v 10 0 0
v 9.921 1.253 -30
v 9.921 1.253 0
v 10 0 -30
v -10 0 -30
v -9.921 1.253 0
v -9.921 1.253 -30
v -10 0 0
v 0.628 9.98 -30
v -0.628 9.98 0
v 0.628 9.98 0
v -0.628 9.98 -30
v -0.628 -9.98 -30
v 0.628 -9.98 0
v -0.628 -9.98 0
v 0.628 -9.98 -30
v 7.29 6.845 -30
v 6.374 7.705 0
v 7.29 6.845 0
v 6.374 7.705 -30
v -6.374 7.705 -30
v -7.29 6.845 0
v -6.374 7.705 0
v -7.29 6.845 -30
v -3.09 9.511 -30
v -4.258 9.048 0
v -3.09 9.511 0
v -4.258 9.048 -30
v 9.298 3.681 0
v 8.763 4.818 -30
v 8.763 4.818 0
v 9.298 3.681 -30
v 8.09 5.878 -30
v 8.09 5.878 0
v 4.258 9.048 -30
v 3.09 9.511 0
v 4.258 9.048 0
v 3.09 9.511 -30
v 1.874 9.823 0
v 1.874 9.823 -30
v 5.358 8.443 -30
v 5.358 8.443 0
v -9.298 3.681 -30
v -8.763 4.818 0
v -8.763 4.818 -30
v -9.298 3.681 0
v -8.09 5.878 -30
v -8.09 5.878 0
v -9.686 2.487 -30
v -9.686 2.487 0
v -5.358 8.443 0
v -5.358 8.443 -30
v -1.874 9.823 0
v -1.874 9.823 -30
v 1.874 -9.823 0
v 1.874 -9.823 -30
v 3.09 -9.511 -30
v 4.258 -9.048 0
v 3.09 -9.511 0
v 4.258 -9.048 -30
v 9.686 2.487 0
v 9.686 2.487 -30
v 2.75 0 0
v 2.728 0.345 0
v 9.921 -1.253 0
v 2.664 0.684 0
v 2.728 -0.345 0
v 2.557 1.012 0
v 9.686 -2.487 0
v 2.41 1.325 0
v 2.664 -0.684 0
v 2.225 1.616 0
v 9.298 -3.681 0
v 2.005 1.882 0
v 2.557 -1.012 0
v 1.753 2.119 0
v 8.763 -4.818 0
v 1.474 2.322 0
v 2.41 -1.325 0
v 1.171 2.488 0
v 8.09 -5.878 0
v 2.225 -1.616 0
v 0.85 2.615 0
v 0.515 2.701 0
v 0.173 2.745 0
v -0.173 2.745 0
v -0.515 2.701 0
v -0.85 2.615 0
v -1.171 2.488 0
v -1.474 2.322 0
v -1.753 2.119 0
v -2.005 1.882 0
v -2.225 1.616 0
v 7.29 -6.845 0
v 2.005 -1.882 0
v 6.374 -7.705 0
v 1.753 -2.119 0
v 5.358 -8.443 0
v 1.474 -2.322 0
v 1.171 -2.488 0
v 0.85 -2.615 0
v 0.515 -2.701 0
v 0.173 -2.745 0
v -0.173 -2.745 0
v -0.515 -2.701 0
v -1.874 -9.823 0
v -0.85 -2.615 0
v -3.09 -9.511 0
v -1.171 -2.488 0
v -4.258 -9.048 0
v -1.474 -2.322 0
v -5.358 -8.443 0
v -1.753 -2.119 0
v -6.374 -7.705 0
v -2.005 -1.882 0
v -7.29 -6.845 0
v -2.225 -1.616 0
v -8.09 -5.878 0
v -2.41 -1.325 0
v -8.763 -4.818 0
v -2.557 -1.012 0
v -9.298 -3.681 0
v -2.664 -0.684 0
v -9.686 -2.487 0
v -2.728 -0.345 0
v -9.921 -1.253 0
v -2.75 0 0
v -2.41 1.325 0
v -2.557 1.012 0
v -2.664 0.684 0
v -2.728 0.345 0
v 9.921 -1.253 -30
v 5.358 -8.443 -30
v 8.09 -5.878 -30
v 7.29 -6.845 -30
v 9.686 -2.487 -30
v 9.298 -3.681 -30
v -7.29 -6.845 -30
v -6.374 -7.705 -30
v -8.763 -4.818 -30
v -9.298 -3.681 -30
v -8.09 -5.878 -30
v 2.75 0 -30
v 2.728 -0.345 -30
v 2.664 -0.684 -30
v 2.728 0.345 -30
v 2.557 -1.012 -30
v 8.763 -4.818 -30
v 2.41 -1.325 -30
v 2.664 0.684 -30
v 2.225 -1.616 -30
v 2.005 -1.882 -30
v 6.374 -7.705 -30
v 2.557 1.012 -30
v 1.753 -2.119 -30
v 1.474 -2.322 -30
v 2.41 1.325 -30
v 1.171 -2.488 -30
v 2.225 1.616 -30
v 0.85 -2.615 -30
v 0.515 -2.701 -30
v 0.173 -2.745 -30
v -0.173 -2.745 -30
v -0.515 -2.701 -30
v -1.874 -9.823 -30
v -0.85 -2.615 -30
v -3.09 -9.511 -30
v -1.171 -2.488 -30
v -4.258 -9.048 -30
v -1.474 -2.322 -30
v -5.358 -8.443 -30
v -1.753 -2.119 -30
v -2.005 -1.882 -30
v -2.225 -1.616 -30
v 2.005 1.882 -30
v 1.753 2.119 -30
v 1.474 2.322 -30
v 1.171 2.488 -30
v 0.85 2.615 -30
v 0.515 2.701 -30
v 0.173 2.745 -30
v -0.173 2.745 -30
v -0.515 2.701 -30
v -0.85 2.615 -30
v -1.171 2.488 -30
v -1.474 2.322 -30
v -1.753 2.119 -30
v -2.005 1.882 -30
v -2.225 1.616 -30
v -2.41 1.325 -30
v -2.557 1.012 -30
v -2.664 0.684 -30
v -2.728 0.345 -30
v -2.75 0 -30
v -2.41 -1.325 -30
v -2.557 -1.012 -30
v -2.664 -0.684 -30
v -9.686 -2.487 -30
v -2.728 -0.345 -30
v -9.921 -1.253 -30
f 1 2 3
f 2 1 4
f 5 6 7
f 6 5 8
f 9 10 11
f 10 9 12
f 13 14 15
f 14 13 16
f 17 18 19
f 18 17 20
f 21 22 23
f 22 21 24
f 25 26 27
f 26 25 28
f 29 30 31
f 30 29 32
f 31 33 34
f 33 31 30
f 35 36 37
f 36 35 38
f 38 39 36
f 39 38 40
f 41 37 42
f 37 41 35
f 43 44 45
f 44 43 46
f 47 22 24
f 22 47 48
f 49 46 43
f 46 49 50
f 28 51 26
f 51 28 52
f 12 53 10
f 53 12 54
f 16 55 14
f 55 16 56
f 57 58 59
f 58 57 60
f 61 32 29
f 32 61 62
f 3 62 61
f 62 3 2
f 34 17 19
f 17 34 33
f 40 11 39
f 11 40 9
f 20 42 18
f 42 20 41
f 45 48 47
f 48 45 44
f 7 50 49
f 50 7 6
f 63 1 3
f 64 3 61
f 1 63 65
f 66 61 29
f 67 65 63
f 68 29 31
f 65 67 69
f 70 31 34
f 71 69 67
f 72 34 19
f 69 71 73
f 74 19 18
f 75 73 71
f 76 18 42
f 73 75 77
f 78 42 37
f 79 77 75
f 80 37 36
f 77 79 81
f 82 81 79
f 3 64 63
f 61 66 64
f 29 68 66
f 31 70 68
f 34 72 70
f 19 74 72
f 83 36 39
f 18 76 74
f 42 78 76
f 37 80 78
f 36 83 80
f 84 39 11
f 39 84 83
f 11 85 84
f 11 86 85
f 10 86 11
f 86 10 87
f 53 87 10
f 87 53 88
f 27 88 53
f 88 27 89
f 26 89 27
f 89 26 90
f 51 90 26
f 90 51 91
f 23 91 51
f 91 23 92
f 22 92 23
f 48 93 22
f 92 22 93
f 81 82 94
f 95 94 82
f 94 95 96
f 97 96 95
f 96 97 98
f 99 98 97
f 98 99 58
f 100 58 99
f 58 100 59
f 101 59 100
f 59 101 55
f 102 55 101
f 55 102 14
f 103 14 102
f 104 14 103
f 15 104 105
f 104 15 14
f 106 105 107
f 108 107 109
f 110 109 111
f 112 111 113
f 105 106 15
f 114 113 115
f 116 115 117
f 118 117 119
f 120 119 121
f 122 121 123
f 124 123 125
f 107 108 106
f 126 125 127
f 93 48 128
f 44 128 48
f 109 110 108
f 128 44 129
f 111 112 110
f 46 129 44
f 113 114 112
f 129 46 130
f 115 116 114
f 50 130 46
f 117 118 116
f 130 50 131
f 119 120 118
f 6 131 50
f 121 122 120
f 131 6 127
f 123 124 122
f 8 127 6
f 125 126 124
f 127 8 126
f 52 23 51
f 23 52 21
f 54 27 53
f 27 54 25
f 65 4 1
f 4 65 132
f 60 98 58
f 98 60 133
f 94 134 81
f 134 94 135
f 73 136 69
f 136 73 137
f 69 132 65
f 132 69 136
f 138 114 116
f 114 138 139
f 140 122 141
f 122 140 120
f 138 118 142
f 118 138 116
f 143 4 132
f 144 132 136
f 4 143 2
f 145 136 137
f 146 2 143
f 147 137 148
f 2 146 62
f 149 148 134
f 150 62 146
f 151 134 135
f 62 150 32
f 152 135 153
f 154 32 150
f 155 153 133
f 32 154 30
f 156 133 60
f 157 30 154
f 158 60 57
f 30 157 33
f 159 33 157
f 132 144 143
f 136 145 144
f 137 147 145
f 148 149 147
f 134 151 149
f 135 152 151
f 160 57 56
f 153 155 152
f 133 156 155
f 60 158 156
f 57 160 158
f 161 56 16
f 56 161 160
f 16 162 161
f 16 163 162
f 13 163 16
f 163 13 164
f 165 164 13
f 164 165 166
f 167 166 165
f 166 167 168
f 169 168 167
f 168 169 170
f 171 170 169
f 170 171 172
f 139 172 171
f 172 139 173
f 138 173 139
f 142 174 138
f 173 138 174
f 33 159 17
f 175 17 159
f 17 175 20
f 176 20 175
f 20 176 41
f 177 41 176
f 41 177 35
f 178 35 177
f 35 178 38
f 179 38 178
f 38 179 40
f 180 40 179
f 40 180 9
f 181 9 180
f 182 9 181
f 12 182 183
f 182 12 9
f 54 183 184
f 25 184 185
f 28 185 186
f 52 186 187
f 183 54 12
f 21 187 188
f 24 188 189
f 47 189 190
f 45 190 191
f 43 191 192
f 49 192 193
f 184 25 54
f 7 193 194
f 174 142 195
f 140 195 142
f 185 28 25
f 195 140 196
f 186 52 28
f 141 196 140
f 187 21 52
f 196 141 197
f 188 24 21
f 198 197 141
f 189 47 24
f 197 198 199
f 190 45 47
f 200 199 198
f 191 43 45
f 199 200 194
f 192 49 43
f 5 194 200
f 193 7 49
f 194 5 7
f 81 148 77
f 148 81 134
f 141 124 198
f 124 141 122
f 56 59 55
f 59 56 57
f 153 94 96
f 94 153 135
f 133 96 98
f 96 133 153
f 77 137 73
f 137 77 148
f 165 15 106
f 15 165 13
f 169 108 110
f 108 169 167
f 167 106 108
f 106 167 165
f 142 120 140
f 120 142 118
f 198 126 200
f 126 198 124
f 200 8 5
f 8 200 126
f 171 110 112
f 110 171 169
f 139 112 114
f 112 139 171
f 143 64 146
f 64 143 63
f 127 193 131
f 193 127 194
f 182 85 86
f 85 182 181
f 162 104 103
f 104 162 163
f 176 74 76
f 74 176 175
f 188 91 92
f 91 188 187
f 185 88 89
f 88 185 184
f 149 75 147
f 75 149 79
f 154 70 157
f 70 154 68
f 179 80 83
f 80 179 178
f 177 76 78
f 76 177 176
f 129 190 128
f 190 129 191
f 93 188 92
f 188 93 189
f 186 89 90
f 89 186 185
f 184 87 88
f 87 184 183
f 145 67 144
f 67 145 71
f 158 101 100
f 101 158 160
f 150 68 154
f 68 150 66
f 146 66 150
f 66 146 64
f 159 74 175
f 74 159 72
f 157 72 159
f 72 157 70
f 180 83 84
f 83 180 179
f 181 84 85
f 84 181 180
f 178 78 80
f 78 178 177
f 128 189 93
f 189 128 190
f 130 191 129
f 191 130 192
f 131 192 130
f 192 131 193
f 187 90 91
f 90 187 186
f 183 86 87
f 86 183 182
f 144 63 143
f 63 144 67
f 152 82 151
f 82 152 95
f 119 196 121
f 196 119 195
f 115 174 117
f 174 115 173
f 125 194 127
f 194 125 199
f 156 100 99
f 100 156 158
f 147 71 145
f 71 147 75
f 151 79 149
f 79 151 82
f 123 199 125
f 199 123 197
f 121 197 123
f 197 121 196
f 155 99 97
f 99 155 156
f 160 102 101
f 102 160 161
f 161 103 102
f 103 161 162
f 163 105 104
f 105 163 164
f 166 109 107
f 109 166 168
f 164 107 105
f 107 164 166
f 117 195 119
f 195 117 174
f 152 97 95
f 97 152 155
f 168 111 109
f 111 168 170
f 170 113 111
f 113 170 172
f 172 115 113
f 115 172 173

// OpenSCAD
$fn = 50;


difference() {
	union() {
		translate(v = [0, 0, -30.0000000000]) {
			cylinder(h = 30, r = 10.0000000000);
		}
		cylinder(h = 0, r = 20.0000000000);
	}
	union() {
		#translate(v = [0, 0, -30]) {
			cylinder(h = 30, r = 2.7500000000);
		}
	}
}
